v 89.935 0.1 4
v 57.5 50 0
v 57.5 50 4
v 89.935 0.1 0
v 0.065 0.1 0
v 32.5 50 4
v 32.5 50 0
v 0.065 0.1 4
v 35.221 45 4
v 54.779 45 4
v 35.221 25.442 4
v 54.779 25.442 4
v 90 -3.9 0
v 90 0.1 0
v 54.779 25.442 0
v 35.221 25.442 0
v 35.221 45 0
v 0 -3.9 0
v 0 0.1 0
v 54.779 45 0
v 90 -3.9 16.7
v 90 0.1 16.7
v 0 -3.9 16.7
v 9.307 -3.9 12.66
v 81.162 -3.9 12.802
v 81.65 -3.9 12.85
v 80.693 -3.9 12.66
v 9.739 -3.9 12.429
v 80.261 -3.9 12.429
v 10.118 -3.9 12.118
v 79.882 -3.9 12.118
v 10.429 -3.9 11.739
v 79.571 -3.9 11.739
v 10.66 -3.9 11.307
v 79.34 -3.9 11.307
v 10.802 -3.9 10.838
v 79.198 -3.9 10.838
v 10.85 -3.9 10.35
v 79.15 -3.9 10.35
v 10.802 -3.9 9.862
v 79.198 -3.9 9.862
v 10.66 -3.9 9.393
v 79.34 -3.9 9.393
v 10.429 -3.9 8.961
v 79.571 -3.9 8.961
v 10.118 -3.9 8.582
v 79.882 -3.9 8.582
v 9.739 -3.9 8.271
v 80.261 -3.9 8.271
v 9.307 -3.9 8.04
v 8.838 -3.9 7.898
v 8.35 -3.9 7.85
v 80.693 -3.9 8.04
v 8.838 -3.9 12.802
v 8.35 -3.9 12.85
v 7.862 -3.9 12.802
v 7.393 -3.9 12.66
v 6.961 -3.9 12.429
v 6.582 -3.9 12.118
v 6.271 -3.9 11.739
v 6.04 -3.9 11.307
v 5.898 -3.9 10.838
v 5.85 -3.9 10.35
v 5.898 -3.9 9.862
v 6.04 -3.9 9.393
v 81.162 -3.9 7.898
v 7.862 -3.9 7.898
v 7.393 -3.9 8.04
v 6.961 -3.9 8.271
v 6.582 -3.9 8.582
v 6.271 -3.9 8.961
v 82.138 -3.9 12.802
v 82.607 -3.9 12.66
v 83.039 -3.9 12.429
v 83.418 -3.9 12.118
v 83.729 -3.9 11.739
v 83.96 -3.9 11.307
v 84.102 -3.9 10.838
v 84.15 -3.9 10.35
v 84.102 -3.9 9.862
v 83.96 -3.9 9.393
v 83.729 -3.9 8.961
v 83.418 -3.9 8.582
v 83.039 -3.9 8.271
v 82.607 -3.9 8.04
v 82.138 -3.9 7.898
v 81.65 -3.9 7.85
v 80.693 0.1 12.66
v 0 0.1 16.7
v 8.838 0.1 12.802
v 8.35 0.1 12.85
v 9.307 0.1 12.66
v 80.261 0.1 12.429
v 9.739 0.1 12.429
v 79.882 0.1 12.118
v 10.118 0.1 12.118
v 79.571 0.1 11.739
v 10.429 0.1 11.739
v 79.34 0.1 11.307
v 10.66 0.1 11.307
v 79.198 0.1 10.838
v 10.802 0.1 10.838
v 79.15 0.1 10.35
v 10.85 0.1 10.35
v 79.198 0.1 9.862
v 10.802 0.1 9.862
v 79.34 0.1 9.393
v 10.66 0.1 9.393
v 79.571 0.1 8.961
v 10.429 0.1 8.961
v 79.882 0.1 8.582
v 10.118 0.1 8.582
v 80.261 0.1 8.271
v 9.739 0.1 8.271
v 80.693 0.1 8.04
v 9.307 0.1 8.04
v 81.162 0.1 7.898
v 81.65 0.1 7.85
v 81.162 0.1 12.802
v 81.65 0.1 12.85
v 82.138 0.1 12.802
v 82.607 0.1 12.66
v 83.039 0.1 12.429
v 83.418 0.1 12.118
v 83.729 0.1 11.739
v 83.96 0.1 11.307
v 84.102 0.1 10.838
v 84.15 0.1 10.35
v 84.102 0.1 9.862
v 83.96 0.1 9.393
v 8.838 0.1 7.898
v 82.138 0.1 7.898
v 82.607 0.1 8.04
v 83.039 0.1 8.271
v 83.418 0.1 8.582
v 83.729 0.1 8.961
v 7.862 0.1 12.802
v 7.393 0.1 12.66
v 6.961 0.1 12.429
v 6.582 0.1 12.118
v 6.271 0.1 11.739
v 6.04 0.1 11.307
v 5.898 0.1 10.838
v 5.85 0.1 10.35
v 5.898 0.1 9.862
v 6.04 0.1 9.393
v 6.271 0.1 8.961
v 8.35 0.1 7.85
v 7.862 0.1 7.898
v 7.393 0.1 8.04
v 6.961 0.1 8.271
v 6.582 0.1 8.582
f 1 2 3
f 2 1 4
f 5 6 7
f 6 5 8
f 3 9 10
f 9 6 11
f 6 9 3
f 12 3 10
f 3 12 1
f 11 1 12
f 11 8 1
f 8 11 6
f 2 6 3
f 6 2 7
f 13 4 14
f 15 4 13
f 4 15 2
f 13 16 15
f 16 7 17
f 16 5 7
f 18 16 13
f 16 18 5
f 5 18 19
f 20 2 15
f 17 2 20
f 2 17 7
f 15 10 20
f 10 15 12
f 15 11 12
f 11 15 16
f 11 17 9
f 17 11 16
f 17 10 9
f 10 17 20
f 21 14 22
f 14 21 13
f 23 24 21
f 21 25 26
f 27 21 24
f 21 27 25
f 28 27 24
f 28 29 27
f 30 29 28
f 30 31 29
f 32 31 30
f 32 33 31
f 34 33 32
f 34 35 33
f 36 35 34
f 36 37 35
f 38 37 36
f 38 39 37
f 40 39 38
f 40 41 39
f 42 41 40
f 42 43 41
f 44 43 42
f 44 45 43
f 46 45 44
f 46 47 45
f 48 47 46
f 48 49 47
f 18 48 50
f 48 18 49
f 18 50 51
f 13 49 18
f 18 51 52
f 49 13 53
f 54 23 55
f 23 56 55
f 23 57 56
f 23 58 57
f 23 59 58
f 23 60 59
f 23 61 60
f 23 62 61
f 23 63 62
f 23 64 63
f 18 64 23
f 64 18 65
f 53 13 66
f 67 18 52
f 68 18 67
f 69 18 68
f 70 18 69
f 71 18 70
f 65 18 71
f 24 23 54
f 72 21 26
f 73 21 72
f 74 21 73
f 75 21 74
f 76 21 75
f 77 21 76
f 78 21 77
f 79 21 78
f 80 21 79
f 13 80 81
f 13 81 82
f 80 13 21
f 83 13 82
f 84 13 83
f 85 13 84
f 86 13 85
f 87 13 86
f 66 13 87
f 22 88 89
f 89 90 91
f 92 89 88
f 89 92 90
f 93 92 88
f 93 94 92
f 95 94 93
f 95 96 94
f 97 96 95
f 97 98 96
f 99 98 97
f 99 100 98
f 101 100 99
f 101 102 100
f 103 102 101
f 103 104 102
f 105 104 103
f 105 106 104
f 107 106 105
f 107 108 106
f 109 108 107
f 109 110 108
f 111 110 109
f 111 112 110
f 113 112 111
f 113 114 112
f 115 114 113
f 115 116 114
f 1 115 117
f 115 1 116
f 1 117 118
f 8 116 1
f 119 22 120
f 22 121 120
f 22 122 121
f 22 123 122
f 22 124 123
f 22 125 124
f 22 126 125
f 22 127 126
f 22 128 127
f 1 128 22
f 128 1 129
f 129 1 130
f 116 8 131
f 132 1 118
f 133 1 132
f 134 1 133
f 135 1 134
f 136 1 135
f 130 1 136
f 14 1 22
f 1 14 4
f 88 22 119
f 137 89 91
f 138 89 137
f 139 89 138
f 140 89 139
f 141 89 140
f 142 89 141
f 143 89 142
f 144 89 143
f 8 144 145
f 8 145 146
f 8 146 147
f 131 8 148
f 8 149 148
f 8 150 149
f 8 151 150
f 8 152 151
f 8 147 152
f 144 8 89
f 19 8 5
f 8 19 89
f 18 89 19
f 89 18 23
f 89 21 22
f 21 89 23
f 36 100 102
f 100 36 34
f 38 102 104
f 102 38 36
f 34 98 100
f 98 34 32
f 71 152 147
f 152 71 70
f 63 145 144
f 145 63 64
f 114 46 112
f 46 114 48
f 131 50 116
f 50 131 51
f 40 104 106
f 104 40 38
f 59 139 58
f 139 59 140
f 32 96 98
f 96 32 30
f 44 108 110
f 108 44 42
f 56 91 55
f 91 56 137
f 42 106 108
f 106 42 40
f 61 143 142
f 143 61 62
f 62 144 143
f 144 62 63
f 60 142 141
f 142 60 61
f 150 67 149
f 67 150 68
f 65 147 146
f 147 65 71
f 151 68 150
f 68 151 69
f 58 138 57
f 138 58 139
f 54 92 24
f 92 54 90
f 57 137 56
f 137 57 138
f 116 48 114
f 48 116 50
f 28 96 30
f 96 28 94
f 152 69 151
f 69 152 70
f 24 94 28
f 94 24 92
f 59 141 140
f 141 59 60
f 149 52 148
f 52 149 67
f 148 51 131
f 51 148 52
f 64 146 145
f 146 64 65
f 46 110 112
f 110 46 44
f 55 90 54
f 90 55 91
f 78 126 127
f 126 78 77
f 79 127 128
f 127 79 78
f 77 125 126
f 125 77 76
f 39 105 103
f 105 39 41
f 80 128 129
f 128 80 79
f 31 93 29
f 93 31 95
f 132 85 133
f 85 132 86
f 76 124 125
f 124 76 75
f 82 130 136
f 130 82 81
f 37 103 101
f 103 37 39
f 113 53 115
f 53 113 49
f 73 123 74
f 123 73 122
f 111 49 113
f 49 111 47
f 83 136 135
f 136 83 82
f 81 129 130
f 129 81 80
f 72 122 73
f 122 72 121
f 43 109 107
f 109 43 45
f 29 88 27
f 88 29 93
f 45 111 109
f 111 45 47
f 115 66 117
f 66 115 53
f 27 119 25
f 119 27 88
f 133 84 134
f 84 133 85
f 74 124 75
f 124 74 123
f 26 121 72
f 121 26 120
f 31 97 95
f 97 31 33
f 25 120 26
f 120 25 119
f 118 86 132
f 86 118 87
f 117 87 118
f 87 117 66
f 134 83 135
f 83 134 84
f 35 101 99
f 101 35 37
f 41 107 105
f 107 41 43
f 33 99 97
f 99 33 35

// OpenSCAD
$fn=32;

body_x0 = 90;
body_x1 = 25;
body_y = 50;
thick = 4;

wall = thick + 2;

body_dx = body_x0-body_x1;

screw_r = 5/2;

bracket_z = 12.7+thick;

e = 0.1;

dowel_r = (0.77 * 25.4)/2;

module dowel_hole() {
     linear_extrude( height=thick+2*e) {
     polygon( points =[  [-dowel_r, -dowel_r], [dowel_r, -dowel_r],
			 [dowel_r, dowel_r], [-dowel_r, dowel_r],
			 [-dowel_r, -dowel_r] ]);
     }
//     cylinder( h=thick+2*e, r=dowel_r);
}

module body_plan() {
     difference() {
	  polygon( points = [ [0,0], [body_x0,0],
			      [body_dx/2+body_x1, body_y],
			      [body_dx/2, body_y],
			      [0,0] ]);
//	  polygon( points = [ [wall, wall],
//			      [body_x0-wall, wall],
//			      [body_dx/4+((body_x1+body_x0)/2)-wall, body_y/2],
//			      [body_dx/4+wall, body_y/2],
//			      [wall, wall], ]);
			      
     }
}


module body() {
     difference() {
	  linear_extrude( height=thick) body_plan();
	  translate( [body_x0/2, body_y-dowel_r-5, -e])
	       dowel_hole();
     }
}


module bracket_plan() {
     difference() {
	  cube( [body_x0, bracket_z, thick]);
	  translate( [bracket_z/2, (bracket_z+thick)/2, -e])
	       cylinder( r=screw_r, h=thick+2*e);
	  translate( [body_x0-bracket_z/2, (bracket_z+thick)/2, -e])
	       cylinder( r=screw_r, h=thick+2*e);
     }
}

body();
translate( [0, e, 0])
rotate( [90, 0, 0]) bracket_plan();
